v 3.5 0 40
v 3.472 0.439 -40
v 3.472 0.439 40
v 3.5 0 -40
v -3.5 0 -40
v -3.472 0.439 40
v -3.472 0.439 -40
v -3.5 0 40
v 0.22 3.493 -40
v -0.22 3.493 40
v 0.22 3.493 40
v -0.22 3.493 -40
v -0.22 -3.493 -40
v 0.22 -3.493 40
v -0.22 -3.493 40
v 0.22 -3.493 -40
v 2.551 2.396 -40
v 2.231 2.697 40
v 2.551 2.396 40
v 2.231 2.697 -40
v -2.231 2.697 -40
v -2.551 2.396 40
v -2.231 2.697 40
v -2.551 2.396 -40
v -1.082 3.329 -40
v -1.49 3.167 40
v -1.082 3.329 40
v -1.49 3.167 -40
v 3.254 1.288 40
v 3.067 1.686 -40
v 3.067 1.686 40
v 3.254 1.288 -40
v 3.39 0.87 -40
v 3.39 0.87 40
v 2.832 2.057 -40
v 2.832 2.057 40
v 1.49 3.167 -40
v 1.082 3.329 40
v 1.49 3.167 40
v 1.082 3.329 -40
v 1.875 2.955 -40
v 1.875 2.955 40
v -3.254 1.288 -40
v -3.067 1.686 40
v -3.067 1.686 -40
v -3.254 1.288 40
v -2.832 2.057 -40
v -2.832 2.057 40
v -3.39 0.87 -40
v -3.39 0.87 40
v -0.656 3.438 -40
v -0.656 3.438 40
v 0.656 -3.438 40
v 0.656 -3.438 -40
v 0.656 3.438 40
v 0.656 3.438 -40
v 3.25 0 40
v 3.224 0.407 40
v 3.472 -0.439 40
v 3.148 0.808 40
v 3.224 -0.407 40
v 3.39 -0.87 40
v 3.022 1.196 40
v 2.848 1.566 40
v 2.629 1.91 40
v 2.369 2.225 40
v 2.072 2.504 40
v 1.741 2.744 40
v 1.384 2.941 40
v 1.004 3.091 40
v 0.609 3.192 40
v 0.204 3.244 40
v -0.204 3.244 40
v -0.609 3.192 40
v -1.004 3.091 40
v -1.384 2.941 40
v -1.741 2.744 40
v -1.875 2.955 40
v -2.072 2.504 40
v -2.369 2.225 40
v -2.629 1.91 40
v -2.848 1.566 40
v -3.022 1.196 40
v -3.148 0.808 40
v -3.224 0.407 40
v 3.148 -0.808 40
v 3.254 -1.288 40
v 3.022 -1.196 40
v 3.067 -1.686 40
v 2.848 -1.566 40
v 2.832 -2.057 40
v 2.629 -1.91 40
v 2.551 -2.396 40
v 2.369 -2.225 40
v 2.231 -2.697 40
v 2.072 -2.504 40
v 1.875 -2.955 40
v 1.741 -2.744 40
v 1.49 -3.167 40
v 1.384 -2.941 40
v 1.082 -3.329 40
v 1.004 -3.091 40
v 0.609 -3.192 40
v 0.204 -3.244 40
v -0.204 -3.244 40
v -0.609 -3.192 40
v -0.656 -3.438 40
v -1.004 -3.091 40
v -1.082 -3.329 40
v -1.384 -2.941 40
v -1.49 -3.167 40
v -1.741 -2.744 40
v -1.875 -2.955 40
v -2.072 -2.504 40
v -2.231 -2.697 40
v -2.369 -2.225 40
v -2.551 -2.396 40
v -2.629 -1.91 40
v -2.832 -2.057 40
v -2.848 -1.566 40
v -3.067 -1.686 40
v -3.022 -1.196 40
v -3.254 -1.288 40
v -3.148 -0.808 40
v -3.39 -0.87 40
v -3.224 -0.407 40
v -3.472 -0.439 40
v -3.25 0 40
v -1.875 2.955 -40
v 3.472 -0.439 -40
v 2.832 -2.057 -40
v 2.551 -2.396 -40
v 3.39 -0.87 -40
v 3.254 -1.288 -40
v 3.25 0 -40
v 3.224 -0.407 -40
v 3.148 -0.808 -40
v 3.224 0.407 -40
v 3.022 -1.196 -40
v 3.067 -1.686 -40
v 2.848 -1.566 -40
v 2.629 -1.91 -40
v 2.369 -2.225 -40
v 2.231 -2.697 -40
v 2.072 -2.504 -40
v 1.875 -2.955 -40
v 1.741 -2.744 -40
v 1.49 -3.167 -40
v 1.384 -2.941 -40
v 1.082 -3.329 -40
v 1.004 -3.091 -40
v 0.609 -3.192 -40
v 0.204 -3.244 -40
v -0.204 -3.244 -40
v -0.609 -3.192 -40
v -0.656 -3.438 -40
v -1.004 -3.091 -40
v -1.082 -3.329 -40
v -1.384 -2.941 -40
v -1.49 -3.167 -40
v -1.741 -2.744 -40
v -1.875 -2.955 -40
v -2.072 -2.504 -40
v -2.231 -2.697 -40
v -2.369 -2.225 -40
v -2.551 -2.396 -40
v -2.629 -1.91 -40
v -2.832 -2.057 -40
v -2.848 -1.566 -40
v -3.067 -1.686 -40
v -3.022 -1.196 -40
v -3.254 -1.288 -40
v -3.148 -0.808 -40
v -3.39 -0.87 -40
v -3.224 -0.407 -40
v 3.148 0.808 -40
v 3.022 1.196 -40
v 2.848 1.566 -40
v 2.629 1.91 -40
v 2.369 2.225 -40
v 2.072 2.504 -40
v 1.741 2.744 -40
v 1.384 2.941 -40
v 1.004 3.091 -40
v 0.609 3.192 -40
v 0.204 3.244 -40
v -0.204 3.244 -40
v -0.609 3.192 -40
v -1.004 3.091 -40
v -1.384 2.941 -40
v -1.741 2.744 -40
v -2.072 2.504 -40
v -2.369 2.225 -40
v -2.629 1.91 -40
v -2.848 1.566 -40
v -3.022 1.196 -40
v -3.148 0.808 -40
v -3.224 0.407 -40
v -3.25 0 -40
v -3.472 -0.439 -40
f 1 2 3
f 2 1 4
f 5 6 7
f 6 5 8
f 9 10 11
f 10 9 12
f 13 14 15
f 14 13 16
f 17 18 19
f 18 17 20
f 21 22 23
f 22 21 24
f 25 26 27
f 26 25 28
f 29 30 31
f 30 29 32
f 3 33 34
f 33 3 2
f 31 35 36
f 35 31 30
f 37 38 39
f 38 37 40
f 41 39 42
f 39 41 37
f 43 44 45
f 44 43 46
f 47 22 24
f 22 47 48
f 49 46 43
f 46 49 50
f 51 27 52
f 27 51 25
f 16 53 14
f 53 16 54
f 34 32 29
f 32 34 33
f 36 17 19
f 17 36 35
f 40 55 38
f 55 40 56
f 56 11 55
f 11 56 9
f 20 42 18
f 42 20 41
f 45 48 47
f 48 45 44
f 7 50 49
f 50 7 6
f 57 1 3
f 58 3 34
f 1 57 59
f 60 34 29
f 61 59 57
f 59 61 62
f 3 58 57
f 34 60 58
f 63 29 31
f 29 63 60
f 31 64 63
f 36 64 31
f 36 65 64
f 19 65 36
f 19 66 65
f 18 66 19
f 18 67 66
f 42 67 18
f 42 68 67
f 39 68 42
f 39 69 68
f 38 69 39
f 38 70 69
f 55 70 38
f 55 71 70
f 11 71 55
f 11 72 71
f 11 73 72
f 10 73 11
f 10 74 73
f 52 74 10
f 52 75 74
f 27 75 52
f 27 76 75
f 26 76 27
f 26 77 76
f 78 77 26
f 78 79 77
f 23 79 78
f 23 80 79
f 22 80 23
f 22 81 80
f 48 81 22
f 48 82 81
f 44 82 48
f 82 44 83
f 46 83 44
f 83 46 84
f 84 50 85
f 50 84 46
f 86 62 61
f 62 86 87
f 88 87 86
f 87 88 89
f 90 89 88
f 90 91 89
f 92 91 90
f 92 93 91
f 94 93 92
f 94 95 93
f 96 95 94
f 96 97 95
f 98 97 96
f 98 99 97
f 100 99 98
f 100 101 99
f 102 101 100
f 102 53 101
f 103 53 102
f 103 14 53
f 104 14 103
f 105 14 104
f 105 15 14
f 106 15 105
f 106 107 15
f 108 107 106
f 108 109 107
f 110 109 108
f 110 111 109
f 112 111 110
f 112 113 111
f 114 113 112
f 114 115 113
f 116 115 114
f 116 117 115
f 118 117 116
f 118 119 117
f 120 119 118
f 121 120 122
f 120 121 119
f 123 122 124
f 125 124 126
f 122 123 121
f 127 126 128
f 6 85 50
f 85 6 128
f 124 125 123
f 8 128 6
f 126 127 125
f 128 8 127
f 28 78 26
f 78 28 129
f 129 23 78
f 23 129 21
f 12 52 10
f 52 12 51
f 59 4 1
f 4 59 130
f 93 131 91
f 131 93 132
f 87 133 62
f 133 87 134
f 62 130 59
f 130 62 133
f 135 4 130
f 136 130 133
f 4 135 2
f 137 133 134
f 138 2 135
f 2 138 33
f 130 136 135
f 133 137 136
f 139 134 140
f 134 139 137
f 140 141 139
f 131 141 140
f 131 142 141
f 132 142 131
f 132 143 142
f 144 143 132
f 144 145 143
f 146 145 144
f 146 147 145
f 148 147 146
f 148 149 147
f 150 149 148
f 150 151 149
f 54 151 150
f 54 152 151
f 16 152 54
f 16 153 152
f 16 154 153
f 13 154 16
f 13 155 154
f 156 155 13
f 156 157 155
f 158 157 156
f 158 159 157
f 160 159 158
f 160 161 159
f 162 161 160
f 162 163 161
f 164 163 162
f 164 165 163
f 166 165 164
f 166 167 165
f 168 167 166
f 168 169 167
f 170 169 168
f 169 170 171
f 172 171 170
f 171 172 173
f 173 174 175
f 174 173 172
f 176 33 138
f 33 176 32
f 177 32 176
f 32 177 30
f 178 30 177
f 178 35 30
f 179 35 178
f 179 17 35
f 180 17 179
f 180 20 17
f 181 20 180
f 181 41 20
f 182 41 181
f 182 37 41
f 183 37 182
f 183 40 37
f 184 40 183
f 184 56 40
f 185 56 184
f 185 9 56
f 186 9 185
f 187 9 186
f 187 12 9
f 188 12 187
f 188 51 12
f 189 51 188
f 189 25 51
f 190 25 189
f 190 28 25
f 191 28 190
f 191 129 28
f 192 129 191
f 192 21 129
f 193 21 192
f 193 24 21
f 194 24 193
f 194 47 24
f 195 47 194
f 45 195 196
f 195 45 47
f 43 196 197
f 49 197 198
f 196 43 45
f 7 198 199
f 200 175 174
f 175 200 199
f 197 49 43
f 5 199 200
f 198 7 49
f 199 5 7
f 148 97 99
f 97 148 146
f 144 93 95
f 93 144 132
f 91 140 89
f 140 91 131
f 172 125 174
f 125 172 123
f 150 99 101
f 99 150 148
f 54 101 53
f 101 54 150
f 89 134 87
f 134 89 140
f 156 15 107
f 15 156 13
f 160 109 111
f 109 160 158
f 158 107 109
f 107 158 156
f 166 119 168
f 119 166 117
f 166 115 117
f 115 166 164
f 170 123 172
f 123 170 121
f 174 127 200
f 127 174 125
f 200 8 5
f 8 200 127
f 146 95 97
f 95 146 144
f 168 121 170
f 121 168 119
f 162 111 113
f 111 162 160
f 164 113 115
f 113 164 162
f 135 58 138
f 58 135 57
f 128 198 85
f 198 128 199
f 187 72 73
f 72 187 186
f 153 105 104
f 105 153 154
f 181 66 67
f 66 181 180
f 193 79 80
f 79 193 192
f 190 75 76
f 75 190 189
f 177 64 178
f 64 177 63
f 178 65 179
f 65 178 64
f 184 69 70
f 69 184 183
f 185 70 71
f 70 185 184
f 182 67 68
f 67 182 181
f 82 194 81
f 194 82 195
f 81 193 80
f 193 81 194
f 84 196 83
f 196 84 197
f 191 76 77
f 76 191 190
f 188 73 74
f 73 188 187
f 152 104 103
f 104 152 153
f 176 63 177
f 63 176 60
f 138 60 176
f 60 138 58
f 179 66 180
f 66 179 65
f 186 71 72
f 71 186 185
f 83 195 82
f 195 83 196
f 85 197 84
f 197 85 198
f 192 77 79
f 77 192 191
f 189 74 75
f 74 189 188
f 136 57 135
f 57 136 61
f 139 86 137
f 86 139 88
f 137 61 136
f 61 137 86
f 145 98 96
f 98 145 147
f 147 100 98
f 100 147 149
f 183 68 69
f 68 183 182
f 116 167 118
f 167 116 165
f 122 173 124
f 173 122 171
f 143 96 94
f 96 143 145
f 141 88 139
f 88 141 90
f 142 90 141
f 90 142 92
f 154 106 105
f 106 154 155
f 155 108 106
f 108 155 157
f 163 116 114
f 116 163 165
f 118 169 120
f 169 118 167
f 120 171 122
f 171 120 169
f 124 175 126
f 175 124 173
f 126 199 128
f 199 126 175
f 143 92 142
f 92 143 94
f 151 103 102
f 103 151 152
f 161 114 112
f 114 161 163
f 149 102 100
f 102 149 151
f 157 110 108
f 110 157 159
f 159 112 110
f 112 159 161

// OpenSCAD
$fn = 50;


difference() {
	union() {
		translate(v = [0, 0, -40.0000000000]) {
			cylinder(h = 80, r = 3.5000000000);
		}
	}
	union() {
		translate(v = [0, 0, -100.0000000000]) {
			cylinder(h = 200, r = 3.2500000000);
		}
	}
}
